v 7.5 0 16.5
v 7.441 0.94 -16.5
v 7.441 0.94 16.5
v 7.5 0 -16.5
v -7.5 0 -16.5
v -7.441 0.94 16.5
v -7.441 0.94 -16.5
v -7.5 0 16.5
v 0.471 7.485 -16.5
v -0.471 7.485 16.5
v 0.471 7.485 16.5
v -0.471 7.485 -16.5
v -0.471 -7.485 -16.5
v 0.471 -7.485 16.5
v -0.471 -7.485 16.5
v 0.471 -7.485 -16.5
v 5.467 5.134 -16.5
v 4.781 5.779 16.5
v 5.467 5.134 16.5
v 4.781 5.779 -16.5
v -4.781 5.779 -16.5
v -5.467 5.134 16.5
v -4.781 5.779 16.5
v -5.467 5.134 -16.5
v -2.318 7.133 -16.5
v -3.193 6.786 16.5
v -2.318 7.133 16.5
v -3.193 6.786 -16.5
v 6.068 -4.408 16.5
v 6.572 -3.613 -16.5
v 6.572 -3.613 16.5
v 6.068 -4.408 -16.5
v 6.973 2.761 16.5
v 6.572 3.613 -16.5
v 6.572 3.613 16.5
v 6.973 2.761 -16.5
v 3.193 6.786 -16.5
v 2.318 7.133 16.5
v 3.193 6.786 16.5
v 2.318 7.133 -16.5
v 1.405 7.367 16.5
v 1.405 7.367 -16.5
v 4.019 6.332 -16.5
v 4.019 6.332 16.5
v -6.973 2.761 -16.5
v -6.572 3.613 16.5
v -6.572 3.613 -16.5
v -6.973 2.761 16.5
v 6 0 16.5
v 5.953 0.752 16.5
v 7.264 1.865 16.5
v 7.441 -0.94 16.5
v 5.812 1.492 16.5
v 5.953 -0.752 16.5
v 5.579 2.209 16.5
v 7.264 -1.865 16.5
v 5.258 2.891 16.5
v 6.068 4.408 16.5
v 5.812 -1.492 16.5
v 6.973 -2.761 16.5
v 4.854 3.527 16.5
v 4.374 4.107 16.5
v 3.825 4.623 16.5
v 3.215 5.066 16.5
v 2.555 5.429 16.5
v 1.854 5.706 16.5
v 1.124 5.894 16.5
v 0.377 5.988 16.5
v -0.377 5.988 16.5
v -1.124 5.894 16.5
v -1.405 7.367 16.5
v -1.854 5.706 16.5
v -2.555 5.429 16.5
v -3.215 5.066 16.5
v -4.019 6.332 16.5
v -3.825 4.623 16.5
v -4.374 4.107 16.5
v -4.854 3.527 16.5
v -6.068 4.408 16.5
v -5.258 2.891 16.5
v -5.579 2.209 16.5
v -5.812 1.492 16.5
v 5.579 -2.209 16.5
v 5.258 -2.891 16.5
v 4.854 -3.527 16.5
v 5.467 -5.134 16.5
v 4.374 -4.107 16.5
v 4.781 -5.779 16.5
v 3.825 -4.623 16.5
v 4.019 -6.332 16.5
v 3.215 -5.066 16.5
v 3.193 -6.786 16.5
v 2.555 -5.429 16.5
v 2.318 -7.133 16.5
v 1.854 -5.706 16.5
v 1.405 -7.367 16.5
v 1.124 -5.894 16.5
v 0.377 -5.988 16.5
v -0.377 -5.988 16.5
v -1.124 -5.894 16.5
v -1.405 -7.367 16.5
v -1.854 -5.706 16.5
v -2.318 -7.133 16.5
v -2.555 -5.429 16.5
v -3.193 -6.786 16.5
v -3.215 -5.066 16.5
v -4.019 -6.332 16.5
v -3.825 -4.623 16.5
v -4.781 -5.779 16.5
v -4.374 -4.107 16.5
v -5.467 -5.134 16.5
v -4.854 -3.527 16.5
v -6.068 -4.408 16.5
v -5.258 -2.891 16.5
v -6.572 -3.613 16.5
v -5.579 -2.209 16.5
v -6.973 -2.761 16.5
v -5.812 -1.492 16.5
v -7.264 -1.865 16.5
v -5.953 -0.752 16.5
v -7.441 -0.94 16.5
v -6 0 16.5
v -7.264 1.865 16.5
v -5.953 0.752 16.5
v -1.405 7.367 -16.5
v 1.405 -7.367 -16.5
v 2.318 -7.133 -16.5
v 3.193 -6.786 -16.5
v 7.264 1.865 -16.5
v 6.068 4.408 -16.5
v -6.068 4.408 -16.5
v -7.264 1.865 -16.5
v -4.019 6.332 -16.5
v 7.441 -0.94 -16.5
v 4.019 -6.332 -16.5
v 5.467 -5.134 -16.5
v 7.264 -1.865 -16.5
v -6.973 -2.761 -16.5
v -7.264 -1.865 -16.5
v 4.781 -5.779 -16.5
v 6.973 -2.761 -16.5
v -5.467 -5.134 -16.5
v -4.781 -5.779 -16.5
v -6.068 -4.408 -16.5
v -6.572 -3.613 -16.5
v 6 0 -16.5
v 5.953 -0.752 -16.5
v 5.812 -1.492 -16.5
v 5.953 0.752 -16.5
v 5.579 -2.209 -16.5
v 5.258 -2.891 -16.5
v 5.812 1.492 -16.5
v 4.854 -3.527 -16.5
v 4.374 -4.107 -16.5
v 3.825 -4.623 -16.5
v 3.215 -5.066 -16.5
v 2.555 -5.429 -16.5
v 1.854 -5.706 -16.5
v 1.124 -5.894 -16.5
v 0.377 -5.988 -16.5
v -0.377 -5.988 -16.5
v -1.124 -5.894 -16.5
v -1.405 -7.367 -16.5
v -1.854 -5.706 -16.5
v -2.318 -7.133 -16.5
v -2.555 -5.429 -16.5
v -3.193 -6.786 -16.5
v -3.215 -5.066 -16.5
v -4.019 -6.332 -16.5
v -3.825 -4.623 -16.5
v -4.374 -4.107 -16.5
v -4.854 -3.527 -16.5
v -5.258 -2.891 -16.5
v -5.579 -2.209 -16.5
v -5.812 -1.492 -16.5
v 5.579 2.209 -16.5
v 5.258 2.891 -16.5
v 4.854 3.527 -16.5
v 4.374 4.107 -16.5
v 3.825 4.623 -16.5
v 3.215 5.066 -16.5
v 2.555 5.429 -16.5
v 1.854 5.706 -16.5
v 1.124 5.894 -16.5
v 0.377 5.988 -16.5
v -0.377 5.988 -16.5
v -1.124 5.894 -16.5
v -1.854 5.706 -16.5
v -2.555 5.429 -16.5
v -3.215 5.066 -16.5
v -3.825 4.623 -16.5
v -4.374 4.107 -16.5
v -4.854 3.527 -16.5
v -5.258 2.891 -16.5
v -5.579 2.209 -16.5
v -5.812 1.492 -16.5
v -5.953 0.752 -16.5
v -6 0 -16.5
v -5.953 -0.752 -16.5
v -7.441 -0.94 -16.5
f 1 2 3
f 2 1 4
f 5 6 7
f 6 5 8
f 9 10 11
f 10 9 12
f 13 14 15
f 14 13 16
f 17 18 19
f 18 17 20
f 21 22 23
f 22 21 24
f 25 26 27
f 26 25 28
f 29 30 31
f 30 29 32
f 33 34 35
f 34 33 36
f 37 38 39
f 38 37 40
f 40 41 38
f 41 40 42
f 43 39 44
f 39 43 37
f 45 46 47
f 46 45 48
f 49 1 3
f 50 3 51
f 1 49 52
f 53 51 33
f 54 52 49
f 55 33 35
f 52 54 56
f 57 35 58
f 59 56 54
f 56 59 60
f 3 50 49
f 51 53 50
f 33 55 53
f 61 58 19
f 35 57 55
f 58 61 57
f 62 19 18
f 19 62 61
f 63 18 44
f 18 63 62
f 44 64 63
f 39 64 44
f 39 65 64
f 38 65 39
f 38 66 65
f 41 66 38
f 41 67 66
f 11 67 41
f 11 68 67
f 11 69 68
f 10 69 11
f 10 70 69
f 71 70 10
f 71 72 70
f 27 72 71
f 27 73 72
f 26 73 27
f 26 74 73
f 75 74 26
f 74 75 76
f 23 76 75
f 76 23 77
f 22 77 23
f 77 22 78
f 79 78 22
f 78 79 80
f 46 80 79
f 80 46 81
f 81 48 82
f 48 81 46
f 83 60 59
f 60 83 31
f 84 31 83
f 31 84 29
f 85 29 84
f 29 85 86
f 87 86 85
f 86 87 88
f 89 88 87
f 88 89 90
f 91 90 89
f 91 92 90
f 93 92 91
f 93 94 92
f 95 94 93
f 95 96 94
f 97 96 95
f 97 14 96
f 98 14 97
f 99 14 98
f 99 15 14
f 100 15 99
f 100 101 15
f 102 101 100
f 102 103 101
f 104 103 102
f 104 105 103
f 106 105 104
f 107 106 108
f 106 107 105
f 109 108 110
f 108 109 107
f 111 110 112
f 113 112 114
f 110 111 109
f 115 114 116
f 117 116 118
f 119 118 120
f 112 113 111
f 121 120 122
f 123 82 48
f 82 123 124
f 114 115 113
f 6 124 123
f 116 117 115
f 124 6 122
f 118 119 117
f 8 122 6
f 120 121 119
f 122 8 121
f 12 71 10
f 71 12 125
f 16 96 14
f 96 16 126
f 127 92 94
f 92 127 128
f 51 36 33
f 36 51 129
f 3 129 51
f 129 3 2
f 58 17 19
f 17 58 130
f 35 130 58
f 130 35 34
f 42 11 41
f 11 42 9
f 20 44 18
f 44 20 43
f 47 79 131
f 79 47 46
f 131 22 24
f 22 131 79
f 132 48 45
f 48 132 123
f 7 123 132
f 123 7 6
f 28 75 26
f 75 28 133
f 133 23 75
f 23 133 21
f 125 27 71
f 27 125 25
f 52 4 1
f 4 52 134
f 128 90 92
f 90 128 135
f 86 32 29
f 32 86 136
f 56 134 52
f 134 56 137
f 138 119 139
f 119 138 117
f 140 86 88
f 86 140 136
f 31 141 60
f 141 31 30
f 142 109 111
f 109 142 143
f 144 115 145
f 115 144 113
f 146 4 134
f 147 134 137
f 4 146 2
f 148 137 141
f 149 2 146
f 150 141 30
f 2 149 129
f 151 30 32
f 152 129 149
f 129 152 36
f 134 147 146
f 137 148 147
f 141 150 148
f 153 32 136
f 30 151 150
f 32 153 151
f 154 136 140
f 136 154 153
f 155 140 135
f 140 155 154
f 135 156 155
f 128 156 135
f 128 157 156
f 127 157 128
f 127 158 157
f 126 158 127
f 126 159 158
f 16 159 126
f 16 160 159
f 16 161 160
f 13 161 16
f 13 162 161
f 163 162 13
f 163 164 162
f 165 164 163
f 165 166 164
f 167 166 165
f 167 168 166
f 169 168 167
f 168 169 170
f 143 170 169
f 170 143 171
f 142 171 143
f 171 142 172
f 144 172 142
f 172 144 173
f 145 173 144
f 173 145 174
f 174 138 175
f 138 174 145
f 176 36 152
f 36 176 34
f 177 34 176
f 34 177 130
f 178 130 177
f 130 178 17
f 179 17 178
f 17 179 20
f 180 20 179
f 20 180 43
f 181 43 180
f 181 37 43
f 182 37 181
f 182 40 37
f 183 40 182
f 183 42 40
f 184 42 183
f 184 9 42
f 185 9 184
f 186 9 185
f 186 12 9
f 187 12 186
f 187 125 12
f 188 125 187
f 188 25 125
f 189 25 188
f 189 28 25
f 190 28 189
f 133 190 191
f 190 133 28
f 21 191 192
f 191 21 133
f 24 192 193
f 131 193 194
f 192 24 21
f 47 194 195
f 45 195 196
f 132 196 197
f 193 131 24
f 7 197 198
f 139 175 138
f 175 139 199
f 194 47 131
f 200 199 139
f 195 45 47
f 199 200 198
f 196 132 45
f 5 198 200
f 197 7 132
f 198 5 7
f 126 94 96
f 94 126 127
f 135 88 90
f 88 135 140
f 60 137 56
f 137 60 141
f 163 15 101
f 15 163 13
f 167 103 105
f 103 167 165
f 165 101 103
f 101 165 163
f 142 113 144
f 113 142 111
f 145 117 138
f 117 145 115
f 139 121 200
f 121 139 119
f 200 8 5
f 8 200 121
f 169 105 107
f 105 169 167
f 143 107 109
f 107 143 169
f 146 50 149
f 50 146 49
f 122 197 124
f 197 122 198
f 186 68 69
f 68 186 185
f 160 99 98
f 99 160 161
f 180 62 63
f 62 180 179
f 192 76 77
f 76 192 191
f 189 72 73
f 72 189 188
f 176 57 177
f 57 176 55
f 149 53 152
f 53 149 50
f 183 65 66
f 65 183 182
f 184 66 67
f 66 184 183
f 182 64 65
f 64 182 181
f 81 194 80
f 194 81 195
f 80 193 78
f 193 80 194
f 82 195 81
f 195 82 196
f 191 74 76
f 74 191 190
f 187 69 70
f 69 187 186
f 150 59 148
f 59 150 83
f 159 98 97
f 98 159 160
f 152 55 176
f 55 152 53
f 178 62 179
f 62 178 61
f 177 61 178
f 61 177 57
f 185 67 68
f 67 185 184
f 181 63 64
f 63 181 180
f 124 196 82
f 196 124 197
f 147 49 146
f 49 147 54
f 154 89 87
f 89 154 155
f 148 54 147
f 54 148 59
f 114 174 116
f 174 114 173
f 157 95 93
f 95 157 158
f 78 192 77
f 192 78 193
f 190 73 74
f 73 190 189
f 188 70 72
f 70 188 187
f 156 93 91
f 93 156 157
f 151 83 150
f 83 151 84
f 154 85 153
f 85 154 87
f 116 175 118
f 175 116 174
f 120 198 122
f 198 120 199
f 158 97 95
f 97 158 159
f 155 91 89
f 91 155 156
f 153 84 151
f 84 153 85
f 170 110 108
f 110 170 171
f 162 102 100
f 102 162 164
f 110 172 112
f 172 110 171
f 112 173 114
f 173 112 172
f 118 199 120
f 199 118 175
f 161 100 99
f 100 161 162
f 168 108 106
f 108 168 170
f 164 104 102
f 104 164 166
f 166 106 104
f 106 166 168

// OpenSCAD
$fn = 50;


difference() {
	union() {
		translate(v = [0, 0, -16.5000000000]) {
			cylinder(h = 33, r = 7.5000000000);
		}
	}
	union() {
		translate(v = [0, 0, -100.0000000000]) {
			cylinder(h = 200, r = 6);
		}
	}
}
